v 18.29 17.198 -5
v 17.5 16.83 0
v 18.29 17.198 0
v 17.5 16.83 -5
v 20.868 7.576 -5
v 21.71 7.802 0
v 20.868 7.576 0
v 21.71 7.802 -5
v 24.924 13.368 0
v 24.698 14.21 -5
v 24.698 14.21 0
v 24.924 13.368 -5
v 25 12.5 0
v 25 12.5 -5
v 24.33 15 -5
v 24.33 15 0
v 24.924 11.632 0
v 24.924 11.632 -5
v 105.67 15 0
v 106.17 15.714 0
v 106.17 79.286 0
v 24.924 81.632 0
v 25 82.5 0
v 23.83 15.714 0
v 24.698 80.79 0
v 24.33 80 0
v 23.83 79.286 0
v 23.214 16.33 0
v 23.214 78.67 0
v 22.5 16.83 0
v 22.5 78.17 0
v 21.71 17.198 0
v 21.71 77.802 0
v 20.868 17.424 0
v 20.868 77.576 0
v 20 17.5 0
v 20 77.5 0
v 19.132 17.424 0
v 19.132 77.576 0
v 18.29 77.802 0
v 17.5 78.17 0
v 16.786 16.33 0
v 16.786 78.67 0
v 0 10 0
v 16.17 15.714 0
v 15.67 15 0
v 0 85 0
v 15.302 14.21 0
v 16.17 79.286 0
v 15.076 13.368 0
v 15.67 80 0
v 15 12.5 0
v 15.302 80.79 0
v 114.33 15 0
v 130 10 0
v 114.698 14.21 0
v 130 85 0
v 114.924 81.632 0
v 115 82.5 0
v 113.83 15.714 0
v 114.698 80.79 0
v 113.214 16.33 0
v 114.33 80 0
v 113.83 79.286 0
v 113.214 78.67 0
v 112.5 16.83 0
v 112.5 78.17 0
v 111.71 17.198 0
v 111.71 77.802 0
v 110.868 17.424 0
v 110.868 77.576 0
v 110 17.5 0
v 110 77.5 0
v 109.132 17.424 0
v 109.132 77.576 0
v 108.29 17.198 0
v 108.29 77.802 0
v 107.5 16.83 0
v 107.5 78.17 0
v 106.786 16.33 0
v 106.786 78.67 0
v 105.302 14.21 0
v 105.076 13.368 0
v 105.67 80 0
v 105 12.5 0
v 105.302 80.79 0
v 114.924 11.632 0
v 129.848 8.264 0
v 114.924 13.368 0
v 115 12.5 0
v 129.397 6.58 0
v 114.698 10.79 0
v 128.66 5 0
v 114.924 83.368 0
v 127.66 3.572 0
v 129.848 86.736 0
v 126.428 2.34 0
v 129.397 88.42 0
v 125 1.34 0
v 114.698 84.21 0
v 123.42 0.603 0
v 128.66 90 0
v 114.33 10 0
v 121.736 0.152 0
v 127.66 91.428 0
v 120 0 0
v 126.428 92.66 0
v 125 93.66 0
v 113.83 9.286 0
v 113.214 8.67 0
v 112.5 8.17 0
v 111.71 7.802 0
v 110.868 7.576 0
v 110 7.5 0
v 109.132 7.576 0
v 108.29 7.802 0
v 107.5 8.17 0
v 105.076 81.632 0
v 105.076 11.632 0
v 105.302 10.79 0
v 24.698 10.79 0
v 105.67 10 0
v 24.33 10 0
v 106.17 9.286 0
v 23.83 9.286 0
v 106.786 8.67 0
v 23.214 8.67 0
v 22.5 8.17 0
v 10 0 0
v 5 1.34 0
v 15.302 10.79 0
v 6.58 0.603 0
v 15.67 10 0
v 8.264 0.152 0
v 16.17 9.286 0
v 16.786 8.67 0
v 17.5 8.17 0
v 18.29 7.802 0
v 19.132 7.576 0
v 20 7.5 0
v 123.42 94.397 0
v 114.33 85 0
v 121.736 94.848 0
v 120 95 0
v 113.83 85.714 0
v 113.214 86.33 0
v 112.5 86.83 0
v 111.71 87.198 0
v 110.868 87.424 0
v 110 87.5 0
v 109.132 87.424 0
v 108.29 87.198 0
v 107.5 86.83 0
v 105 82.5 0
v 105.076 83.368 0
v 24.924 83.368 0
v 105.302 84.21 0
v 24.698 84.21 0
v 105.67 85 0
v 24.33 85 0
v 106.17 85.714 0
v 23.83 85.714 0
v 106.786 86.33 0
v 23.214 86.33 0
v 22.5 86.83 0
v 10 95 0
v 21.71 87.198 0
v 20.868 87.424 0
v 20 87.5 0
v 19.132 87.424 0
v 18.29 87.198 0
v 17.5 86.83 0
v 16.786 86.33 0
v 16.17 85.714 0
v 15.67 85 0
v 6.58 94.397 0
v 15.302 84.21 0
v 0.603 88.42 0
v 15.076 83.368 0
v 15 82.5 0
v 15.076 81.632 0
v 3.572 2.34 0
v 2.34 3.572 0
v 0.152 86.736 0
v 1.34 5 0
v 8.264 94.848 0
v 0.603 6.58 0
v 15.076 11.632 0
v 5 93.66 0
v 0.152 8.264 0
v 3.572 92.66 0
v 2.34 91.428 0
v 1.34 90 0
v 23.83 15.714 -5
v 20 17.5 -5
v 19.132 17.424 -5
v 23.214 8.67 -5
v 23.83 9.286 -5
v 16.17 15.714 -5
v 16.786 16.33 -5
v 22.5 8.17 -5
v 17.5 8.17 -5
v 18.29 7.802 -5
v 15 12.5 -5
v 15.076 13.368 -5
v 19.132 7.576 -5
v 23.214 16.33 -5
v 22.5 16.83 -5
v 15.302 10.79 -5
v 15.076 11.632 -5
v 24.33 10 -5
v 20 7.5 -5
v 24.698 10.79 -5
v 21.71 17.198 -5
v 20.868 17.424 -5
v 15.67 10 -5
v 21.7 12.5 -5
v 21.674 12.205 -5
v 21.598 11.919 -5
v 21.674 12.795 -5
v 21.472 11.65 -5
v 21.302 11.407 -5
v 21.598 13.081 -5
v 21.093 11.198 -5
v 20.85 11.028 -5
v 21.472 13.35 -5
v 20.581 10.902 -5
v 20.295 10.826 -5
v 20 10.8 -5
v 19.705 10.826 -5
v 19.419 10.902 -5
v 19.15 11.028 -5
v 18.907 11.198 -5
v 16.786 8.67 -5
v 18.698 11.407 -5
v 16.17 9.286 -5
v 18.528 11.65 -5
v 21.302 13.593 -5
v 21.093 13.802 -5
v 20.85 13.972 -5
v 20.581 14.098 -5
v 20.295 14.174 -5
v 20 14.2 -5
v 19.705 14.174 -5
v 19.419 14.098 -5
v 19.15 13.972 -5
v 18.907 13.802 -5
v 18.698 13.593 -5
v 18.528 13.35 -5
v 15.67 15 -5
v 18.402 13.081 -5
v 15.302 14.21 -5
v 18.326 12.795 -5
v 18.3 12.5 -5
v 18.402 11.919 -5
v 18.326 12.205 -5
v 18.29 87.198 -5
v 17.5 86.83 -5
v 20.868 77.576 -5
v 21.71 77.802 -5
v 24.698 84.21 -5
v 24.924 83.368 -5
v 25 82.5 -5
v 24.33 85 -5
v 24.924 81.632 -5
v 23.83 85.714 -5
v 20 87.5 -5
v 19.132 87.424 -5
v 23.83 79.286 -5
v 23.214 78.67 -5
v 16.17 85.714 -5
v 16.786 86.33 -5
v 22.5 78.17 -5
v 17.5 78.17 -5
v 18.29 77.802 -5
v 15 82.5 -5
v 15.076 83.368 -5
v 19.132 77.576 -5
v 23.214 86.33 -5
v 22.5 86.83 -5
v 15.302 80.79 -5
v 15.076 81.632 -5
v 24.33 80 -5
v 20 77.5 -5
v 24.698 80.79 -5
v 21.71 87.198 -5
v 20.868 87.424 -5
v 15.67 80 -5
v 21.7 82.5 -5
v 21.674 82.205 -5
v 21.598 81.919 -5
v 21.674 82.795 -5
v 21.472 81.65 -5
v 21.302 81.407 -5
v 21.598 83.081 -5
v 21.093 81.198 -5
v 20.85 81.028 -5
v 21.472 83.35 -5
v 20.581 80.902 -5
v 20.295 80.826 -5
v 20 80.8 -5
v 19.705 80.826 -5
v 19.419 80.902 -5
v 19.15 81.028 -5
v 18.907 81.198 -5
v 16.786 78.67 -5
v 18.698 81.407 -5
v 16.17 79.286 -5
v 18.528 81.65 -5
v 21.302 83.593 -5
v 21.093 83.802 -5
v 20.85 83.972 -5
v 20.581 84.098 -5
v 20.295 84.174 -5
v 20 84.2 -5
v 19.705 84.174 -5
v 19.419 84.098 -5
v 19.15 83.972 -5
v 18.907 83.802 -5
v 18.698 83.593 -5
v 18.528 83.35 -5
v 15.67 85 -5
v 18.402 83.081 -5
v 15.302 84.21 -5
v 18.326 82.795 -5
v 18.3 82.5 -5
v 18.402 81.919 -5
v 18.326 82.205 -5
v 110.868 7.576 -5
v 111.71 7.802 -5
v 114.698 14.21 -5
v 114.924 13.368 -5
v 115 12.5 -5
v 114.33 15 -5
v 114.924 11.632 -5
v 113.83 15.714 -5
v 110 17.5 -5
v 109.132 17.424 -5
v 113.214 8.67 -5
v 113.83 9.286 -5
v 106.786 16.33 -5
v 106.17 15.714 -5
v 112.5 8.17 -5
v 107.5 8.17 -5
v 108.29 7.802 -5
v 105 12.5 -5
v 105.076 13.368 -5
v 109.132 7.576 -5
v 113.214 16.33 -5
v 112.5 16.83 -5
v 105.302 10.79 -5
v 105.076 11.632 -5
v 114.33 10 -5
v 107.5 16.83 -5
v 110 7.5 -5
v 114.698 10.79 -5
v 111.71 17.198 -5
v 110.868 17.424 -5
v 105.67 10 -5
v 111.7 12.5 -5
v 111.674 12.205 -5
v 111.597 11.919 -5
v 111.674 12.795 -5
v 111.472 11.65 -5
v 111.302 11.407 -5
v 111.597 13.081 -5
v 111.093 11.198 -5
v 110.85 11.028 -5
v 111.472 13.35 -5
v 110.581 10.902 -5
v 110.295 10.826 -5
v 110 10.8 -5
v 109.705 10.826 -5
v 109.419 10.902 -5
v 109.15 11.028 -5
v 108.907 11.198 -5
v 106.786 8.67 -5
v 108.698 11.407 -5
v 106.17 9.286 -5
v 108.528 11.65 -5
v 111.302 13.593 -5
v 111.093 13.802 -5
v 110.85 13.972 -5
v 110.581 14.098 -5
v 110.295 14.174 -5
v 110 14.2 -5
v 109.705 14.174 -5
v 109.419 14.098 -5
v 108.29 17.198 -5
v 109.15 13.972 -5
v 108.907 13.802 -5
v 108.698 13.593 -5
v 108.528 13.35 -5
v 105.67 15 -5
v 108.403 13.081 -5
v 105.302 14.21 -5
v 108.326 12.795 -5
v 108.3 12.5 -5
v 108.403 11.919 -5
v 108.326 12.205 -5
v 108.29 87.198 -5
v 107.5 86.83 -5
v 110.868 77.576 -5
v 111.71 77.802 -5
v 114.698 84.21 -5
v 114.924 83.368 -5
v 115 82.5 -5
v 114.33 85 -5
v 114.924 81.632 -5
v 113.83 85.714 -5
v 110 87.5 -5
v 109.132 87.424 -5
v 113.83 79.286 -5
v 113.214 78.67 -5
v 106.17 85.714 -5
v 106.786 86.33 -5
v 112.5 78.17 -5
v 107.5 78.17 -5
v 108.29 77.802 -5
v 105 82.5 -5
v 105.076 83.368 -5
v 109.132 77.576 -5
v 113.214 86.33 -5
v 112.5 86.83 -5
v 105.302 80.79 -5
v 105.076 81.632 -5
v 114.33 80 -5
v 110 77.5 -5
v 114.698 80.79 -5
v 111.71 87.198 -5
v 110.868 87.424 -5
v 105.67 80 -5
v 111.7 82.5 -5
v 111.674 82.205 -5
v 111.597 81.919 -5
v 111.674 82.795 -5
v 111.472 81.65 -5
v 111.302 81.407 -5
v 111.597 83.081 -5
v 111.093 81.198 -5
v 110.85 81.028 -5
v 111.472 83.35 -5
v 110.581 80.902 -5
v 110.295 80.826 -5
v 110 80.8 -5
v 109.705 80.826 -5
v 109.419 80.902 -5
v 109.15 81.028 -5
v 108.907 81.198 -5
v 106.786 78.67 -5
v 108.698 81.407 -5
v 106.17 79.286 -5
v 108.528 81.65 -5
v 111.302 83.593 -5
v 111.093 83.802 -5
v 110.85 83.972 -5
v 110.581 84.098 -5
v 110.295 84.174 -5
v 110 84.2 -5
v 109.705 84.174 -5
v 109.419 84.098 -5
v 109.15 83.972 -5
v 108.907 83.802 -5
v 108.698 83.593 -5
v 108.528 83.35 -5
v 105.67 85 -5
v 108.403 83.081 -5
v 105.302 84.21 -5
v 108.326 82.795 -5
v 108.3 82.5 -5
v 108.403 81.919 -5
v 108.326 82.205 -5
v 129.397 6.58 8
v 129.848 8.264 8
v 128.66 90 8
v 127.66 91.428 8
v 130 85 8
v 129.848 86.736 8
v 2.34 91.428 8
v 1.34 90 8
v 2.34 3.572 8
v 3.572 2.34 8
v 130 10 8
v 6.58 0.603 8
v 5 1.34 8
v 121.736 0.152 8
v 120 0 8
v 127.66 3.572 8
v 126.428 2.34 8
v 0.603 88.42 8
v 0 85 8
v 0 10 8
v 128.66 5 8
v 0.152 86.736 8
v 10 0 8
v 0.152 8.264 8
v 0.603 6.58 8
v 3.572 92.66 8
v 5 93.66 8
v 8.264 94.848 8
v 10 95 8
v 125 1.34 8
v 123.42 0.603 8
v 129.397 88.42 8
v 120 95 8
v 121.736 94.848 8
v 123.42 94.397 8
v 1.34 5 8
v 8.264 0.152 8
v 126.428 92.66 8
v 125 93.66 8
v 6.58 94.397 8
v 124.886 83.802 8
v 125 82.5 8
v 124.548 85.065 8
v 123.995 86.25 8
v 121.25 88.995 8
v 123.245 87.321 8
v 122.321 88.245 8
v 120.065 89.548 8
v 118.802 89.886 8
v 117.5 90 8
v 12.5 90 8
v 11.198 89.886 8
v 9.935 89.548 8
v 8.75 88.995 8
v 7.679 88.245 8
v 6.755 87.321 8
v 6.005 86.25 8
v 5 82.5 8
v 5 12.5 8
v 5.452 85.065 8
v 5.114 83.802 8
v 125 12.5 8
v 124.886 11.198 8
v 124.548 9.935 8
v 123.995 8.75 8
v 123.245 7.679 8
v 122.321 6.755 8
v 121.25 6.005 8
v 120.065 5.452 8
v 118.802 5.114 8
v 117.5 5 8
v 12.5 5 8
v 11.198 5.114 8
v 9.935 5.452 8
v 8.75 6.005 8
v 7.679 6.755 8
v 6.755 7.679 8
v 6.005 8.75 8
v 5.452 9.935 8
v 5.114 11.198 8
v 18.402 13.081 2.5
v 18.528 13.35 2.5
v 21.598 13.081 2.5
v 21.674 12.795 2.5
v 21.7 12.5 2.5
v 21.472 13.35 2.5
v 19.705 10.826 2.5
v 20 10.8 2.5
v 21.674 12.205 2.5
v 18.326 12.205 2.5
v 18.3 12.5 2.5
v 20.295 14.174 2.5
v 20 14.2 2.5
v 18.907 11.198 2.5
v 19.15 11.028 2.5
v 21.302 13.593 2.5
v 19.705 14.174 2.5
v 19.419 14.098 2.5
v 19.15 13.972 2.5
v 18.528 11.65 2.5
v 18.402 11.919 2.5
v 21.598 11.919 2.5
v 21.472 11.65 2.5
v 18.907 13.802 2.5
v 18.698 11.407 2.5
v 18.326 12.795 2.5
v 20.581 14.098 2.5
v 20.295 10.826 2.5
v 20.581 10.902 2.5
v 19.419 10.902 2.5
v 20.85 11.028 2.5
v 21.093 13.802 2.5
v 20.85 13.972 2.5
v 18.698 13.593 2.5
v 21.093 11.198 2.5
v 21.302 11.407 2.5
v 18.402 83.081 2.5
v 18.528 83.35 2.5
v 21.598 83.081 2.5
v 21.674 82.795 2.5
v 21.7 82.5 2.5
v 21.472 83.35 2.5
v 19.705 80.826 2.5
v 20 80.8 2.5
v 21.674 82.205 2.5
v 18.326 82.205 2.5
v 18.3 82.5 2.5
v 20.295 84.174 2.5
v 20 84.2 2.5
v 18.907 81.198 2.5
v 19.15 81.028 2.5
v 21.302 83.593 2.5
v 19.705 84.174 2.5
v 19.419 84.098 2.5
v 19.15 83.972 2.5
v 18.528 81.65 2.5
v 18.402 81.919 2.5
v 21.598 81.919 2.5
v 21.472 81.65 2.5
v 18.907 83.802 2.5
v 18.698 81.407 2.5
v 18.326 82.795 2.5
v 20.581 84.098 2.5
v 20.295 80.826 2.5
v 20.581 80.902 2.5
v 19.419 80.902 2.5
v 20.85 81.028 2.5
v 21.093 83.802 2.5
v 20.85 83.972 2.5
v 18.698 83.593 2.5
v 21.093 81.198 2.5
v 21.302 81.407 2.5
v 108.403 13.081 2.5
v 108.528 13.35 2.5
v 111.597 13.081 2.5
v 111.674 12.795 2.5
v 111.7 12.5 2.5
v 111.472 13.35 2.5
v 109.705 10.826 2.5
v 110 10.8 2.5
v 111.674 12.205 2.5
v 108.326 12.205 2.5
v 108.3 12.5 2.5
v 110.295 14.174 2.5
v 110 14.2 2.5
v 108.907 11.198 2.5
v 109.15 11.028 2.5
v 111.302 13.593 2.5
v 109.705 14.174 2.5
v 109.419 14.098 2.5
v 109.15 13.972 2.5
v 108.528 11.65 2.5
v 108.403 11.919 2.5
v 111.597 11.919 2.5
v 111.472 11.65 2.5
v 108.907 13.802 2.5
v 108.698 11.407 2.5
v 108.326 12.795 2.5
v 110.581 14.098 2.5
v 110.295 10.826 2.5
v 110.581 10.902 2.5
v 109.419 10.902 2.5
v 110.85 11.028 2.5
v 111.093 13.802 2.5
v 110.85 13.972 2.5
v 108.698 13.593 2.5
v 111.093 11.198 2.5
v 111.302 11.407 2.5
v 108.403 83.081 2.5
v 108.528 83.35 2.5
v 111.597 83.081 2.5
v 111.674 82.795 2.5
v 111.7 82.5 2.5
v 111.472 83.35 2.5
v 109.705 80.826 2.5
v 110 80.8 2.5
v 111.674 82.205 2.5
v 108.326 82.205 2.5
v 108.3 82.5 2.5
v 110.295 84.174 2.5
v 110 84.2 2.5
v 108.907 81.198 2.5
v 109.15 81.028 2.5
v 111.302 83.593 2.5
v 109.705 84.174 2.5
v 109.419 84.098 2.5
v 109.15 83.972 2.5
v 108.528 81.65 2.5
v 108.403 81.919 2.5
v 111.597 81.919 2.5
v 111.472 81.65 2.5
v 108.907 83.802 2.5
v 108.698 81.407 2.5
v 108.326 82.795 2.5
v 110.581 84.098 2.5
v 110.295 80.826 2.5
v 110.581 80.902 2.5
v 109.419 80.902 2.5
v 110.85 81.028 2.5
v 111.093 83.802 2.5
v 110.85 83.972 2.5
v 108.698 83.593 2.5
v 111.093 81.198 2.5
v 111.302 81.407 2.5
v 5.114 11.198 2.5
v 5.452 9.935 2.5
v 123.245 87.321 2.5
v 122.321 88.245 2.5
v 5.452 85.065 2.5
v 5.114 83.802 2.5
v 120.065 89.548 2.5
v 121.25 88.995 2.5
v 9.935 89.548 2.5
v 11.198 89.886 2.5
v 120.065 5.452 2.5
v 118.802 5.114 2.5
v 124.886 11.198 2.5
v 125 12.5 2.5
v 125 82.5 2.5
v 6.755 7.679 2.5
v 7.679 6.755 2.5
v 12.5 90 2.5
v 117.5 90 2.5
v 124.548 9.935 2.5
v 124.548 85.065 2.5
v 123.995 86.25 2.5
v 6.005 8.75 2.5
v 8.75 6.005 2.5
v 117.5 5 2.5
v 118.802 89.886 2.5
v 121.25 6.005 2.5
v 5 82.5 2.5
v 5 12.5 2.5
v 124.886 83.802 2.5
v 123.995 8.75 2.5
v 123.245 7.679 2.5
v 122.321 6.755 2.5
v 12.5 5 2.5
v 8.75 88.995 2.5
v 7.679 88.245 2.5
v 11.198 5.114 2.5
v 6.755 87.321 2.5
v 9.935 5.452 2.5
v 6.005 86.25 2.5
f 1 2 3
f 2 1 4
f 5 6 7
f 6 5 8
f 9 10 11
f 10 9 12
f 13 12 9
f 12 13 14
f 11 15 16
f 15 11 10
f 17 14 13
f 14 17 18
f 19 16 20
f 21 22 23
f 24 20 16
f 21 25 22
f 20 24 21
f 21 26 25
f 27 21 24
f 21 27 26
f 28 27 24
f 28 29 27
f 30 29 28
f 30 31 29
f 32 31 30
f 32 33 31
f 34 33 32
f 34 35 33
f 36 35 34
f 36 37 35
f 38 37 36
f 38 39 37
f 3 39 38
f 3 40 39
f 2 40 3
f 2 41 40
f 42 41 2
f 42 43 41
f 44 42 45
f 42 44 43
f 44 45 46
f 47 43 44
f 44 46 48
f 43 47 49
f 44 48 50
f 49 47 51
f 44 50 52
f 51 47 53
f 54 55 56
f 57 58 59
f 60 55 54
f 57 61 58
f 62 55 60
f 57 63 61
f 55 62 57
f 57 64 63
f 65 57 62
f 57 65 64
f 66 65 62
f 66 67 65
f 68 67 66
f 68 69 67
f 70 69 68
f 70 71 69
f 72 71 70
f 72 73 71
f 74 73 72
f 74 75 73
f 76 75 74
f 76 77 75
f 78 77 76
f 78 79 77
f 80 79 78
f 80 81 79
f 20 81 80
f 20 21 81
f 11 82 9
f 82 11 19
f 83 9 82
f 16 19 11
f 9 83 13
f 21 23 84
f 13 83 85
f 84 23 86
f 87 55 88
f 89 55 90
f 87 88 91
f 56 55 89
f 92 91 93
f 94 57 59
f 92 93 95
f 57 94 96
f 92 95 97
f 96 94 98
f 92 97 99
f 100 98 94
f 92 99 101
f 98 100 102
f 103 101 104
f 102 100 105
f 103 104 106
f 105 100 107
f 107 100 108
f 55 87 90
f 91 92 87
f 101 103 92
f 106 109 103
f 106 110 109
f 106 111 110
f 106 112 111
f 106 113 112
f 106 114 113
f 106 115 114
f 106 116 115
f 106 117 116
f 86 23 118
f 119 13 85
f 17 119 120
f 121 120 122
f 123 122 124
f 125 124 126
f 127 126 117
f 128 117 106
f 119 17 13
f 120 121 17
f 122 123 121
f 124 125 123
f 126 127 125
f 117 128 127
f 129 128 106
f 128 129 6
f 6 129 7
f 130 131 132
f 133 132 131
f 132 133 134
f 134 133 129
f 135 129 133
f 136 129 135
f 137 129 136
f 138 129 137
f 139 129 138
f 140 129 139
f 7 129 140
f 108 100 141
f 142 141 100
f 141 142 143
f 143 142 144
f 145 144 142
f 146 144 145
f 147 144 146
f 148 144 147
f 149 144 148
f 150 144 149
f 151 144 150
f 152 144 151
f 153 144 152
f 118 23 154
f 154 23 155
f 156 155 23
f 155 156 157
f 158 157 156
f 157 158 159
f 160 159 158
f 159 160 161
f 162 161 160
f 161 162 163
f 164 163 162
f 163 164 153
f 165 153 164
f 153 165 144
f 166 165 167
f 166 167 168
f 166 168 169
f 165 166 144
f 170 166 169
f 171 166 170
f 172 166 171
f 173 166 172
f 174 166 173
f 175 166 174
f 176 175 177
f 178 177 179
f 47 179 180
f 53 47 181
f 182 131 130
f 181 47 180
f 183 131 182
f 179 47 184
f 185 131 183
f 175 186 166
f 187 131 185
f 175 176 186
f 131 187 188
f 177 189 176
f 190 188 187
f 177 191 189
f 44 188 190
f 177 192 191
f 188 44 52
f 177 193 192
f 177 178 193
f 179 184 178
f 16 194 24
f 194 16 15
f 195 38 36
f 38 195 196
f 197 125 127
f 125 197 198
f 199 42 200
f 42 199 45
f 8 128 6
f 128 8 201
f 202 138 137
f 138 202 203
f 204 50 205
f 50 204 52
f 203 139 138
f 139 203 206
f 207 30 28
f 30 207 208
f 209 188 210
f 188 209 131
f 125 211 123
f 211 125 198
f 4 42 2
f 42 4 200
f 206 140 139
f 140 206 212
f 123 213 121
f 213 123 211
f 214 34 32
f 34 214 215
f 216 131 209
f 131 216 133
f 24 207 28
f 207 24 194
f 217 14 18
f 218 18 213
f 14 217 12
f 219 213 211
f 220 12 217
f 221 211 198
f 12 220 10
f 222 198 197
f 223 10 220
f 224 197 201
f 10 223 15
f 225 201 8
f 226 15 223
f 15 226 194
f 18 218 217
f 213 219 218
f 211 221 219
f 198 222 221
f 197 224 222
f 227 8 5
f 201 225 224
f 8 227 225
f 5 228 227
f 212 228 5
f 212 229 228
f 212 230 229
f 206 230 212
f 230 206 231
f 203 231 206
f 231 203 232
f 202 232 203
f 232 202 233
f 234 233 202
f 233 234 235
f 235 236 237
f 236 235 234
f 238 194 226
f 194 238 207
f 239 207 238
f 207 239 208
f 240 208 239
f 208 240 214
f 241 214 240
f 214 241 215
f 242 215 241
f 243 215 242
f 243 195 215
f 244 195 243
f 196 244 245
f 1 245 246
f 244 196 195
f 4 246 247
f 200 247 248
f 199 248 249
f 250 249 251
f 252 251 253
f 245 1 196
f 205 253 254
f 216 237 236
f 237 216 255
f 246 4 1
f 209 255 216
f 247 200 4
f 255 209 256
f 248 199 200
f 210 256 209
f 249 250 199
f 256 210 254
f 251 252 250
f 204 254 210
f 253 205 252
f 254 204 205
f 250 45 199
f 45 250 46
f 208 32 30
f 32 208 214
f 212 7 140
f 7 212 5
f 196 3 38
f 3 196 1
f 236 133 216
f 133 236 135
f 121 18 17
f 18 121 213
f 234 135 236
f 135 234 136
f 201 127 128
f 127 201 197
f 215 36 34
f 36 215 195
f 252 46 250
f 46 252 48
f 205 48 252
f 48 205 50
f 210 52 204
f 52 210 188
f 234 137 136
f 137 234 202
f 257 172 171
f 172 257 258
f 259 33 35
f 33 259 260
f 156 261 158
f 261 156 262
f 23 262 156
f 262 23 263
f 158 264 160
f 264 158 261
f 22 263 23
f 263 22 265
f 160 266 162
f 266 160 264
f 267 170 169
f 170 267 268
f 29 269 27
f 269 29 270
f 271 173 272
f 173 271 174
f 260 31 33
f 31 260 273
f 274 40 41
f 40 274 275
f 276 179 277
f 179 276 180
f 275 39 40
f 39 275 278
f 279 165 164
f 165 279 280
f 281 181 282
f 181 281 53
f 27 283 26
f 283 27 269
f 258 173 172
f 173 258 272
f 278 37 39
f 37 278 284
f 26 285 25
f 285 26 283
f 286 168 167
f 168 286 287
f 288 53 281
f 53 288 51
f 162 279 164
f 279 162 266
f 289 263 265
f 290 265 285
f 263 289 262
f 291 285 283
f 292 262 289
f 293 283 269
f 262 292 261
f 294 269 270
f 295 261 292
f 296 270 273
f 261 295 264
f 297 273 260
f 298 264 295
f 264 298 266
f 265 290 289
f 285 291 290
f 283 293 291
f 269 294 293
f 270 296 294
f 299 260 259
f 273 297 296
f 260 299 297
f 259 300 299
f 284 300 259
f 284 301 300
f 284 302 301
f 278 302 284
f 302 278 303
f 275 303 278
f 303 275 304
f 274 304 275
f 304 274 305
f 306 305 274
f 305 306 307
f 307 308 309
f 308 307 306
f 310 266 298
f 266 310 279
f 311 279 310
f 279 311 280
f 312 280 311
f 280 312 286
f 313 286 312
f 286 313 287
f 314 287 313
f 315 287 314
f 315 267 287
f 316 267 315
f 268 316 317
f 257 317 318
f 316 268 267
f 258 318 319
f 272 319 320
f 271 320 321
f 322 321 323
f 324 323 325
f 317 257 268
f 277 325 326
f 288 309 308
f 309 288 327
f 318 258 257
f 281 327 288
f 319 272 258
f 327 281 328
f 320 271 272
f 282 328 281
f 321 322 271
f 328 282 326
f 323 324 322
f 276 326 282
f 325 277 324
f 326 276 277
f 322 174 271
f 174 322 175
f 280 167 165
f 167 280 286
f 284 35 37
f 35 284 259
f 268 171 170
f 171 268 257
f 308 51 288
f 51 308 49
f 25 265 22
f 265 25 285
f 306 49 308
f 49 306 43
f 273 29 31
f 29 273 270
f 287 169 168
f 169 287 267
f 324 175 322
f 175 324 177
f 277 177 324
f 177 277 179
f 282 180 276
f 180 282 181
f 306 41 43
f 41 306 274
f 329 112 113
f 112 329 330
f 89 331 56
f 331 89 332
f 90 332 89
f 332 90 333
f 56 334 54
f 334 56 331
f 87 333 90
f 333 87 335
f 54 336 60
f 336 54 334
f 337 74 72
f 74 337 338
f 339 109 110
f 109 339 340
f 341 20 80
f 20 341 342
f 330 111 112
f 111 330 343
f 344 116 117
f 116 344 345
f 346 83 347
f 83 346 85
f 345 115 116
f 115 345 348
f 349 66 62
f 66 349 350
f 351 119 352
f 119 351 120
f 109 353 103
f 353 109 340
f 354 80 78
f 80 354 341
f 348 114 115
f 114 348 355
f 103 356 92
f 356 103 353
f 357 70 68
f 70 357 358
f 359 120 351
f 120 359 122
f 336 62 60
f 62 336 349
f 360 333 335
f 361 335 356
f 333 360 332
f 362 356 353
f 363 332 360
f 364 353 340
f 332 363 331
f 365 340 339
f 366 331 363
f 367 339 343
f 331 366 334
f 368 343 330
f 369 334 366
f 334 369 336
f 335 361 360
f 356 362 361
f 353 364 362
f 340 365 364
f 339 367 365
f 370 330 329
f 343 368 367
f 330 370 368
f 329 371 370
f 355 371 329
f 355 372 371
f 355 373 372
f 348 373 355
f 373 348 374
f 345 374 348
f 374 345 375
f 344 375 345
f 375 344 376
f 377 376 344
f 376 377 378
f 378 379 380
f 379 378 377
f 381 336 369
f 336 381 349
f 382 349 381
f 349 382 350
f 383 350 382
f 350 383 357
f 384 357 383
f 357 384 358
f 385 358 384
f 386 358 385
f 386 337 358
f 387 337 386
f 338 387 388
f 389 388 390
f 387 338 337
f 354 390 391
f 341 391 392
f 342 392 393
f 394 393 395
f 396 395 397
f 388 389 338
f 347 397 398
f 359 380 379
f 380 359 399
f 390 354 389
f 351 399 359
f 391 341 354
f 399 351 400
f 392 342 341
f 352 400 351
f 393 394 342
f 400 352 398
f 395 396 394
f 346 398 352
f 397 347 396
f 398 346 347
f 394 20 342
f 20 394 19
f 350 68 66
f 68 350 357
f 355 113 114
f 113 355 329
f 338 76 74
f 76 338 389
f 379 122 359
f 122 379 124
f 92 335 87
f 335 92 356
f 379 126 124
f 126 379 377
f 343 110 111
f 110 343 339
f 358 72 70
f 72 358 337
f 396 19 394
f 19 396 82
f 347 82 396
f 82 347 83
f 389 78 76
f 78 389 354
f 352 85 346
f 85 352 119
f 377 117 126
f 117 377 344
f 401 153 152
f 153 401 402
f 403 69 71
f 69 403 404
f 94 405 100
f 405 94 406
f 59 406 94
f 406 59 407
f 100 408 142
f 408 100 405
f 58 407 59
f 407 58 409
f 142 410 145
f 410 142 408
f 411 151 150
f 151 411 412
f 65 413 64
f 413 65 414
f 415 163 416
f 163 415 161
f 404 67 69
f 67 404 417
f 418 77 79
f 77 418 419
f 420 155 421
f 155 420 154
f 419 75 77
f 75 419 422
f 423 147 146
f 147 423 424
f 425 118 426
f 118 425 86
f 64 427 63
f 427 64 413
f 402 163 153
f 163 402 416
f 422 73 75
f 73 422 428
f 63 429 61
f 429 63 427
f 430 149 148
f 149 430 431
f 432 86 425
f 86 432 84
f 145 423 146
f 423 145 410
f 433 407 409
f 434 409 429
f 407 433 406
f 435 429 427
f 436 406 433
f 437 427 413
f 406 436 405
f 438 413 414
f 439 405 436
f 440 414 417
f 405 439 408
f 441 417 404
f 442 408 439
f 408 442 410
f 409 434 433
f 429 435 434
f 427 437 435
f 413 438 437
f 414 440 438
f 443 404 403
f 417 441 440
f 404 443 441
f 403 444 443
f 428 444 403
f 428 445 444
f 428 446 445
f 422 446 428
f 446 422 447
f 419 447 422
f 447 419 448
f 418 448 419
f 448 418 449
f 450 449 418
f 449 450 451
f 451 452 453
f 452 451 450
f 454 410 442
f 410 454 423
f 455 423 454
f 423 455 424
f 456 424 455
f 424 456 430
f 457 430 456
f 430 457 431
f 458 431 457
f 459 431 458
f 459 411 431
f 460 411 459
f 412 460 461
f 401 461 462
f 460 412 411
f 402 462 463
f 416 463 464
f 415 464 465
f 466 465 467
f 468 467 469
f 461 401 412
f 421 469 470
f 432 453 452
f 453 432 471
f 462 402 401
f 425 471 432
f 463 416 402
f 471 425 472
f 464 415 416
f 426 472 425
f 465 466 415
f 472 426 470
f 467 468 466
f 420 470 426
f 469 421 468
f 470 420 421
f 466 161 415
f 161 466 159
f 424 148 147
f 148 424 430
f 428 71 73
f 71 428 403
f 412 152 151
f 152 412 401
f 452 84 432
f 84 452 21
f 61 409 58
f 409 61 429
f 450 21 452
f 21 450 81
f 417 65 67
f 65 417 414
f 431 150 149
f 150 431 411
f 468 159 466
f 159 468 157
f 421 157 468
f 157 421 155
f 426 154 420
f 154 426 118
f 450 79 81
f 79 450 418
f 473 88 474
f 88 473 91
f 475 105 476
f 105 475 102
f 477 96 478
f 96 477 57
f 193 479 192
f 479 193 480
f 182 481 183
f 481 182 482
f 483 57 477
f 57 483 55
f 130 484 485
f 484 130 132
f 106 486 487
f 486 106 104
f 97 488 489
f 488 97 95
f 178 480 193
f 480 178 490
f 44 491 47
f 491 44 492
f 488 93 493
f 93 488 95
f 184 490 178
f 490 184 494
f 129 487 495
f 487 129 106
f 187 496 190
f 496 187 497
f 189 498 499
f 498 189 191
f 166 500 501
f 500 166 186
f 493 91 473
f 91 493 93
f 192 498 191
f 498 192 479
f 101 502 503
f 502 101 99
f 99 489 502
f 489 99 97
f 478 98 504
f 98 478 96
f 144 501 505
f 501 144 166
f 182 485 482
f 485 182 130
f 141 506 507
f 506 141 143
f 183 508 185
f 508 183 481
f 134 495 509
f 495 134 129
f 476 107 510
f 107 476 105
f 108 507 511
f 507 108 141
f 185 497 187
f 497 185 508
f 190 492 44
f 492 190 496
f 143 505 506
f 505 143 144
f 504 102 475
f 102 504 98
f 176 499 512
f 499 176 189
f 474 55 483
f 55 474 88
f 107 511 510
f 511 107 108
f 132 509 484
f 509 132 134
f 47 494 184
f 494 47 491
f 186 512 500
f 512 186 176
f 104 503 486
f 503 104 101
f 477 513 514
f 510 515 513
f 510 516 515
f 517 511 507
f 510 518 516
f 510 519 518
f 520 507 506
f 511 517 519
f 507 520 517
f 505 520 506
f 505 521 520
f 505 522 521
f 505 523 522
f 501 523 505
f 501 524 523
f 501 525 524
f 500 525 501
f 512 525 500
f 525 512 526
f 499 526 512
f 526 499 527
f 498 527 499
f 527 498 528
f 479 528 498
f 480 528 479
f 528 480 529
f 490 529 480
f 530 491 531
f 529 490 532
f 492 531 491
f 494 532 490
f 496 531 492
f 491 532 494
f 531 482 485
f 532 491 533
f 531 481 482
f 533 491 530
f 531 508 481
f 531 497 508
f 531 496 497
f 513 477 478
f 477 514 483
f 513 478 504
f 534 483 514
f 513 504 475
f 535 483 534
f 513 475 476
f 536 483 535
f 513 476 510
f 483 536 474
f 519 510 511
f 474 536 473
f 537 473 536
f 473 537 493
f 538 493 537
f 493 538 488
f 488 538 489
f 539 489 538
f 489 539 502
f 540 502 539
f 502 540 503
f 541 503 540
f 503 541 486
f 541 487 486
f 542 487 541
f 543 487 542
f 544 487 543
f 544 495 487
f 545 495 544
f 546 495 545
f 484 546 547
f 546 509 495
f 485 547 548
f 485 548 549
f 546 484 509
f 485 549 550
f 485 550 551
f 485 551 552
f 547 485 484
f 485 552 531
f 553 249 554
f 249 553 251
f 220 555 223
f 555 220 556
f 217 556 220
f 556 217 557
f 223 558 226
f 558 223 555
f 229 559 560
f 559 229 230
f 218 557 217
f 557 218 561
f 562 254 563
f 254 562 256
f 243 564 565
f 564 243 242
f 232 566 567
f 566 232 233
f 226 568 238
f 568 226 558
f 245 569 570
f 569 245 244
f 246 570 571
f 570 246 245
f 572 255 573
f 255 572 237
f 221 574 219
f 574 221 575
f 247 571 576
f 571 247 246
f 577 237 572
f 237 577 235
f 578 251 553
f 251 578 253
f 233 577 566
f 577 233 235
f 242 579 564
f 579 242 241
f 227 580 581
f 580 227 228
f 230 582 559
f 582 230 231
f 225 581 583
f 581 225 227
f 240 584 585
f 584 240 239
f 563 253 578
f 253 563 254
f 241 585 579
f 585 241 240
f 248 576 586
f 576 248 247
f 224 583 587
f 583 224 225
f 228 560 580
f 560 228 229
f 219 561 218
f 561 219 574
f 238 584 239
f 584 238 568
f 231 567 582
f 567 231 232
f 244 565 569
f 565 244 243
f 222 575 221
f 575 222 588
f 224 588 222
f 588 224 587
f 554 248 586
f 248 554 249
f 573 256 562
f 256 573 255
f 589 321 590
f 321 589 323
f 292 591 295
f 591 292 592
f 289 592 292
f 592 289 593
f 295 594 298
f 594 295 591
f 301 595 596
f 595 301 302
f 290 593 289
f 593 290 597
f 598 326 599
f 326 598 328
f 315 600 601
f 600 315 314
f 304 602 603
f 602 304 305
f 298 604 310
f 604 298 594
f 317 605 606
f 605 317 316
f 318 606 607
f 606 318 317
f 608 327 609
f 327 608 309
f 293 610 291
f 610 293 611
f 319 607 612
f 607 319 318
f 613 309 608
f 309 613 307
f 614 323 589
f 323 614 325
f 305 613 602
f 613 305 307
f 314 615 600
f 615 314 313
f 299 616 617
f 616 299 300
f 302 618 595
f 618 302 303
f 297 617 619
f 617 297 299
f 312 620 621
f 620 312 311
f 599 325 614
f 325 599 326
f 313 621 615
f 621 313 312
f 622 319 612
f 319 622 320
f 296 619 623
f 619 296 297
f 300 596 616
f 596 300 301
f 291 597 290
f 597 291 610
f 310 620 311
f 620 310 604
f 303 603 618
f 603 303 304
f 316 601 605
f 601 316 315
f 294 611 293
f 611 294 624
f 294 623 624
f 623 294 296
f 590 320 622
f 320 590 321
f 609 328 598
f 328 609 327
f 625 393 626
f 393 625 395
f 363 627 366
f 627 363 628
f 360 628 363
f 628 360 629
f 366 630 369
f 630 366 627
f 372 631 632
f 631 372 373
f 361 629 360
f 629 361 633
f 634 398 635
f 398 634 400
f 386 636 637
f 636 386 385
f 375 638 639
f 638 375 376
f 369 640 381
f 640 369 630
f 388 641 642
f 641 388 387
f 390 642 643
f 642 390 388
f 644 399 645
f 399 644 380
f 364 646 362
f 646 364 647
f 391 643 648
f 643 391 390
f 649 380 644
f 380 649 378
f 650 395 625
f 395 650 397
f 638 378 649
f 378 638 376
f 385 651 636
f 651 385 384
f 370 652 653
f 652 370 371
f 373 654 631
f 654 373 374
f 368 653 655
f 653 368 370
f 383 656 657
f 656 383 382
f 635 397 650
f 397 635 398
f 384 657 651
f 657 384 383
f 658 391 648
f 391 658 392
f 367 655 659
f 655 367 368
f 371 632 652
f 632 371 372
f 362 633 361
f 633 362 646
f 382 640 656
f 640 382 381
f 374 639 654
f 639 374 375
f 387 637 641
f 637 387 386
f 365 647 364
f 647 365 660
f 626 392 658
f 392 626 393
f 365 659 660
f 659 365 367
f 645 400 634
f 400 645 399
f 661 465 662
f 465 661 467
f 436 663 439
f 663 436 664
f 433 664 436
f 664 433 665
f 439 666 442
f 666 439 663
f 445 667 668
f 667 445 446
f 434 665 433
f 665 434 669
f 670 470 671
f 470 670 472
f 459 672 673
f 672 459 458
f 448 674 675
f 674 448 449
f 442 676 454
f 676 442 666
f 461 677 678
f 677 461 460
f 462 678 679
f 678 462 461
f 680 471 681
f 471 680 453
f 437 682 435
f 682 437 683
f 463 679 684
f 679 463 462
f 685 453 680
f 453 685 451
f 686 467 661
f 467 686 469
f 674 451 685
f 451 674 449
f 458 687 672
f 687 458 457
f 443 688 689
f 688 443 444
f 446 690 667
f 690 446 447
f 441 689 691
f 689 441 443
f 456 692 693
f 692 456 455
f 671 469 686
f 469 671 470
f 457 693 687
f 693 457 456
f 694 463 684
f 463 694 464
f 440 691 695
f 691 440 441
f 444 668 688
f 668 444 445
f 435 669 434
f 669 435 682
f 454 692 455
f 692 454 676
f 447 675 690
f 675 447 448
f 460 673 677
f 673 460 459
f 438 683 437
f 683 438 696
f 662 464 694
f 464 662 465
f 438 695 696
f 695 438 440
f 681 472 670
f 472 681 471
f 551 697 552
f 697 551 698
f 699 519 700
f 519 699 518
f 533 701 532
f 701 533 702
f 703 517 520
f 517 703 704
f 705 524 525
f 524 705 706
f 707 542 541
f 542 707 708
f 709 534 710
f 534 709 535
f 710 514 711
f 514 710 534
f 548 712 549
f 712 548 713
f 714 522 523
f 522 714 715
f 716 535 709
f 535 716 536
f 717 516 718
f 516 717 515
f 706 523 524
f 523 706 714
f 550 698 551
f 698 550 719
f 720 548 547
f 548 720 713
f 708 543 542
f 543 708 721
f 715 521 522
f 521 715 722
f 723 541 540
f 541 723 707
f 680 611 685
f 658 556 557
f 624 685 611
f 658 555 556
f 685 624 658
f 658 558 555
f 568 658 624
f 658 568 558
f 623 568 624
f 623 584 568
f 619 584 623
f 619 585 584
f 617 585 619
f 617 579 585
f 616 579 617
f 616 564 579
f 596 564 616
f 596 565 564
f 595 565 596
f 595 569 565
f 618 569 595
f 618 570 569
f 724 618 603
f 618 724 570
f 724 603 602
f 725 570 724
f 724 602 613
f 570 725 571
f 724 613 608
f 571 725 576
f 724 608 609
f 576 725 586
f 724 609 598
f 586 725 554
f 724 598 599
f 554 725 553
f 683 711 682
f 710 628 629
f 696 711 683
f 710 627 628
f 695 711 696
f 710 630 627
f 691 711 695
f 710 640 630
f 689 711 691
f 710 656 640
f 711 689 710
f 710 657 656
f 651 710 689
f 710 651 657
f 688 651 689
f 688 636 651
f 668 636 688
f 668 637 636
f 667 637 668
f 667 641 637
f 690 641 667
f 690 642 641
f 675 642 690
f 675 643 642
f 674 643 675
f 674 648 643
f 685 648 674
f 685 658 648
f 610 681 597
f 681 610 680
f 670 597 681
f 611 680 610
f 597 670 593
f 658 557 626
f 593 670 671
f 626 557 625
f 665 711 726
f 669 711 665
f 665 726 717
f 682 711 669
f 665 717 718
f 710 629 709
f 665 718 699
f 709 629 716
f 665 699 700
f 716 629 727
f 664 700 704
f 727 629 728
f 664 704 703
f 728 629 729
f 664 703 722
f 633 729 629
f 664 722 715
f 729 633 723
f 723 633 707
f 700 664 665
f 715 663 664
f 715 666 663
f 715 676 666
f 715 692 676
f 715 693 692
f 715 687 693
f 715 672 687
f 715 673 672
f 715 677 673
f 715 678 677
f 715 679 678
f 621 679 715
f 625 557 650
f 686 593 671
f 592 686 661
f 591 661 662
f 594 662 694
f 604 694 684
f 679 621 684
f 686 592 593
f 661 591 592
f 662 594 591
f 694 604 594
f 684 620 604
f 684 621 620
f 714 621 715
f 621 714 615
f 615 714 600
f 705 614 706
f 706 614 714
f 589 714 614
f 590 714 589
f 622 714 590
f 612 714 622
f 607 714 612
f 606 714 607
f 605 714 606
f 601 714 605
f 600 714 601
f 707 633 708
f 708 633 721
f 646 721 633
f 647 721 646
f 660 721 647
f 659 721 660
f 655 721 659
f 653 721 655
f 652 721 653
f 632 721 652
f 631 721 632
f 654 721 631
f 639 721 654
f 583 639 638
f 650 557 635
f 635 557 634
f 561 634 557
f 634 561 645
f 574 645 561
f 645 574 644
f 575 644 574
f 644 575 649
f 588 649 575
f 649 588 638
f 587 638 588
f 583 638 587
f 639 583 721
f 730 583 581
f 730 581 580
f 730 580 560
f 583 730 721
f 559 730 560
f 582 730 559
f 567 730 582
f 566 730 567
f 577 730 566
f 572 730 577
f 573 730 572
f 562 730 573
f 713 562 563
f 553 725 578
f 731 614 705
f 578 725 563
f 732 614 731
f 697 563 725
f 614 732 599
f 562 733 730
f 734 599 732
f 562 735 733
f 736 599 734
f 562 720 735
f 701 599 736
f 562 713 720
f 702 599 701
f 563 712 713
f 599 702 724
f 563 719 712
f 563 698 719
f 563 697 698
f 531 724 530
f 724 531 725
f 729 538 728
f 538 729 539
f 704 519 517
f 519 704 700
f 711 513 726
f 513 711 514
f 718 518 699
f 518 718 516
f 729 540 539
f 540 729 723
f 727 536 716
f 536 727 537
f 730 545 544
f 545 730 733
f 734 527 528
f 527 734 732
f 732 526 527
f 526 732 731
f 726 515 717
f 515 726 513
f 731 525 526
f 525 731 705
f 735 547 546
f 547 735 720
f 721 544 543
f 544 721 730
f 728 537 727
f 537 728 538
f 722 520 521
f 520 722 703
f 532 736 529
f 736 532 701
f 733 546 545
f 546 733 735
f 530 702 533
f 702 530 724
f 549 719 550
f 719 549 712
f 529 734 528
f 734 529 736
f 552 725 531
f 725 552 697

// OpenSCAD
// ==============================================================================
// ROBOT MOVIL AUTONOMO 2WD - PLATO PORTA-OBJETOS SUPERIOR (BANDEJA DE CARGA)
// Dimensiones Útiles: 130.0 x 95.0 mm con Reborde Anticaída de 8.0 mm
// Capacidad de Carga de Diseño: 1.0 a 1.2 kg nominal (sin pérdida de potencia)
// Incluye:
// 1. Bandeja perimetral redondeada con reborde de contención anticaída (h = 8.0 mm)
// 2. Nervaduras / estrías antideslizantes integradas en la superficie de apoyo
// 3. 4x Orejetas inferiores con taladros avellanados M3 para anclaje a la carcasa
// 4. Geometría 100% imprimible en FDM sin soportes (PETG / PLA / ABS)
// ==============================================================================

$fn = 36;

// Parámetros principales del plato (mm)
L_plato = 130.0;
W_plato = 95.0;
H_borde = 8.0;
t_piso = 2.5;
t_borde = 2.5;
r_esquina = 10.0;

// Espaciado de pernos de anclaje (coincidente con el techo de la carcasa)
dx_anclaje = 90.0;
dy_anclaje = 70.0;

module plato_porta_objetos_2wd() {
    color([0.20, 0.75, 0.45]) // Verde funcional / bandeja de carga
    difference() {
        union() {
            // 1. CUERPO EXTERIOR DE LA BANDEJA CON ESQUINAS REDONDEADAS
            hull() {
                translate([r_esquina, r_esquina, 0]) cylinder(r=r_esquina, h=H_borde);
                translate([L_plato - r_esquina, r_esquina, 0]) cylinder(r=r_esquina, h=H_borde);
                translate([r_esquina, W_plato - r_esquina, 0]) cylinder(r=r_esquina, h=H_borde);
                translate([L_plato - r_esquina, W_plato - r_esquina, 0]) cylinder(r=r_esquina, h=H_borde);
            }
            
            // 2. OREJETAS / TORRETAS INFERIORES DE ANCLAJE A CARCASA (Hacia abajo en Z=-5)
            for (sx = [-1, 1]) {
                for (sy = [-1, 1]) {
                    translate([L_plato/2 + sx * (dx_anclaje/2), W_plato/2 + sy * (dy_anclaje/2), -5])
                        cylinder(d=10.0, h=5.0);
                }
            }
            
            // 3. ESTRÍAS / NERVADURAS ANTIDESLIZANTES EN EL PISO INTERNO
            for (i = [-5:5]) {
                translate([L_plato/2 + i * 10, W_plato/2, t_piso])
                    cube([2.0, W_plato - 2 * (r_esquina + t_borde), 1.2], center=true);
            }
        }
        
        // 4. VACIADO INTERIOR PARA FORMAR LA BANDEJA CON REBORDE
        translate([0, 0, t_piso])
        hull() {
            translate([r_esquina + t_borde, r_esquina + t_borde, 0]) cylinder(r=r_esquina - t_borde, h=H_borde);
            translate([L_plato - r_esquina - t_borde, r_esquina + t_borde, 0]) cylinder(r=r_esquina - t_borde, h=H_borde);
            translate([r_esquina + t_borde, W_plato - r_esquina - t_borde, 0]) cylinder(r=r_esquina - t_borde, h=H_borde);
            translate([L_plato - r_esquina - t_borde, W_plato - r_esquina - t_borde, 0]) cylinder(r=r_esquina - t_borde, h=H_borde);
        }
        
        // 5. TALADROS AVELLANADOS M3 PARA FIJACIÓN A CARCASA (4x)
        for (sx = [-1, 1]) {
            for (sy = [-1, 1]) {
                // Taladro pasante M3
                translate([L_plato/2 + sx * (dx_anclaje/2), W_plato/2 + sy * (dy_anclaje/2), -6])
                    cylinder(d=3.4, h=15.0);
                // Avellanado superior para cabeza cónica DIN 7991 M3
                translate([L_plato/2 + sx * (dx_anclaje/2), W_plato/2 + sy * (dy_anclaje/2), t_piso + 0.5])
                    cylinder(d1=3.4, d2=6.8, h=2.5);
            }
        }
    }
}

plato_porta_objetos_2wd();
